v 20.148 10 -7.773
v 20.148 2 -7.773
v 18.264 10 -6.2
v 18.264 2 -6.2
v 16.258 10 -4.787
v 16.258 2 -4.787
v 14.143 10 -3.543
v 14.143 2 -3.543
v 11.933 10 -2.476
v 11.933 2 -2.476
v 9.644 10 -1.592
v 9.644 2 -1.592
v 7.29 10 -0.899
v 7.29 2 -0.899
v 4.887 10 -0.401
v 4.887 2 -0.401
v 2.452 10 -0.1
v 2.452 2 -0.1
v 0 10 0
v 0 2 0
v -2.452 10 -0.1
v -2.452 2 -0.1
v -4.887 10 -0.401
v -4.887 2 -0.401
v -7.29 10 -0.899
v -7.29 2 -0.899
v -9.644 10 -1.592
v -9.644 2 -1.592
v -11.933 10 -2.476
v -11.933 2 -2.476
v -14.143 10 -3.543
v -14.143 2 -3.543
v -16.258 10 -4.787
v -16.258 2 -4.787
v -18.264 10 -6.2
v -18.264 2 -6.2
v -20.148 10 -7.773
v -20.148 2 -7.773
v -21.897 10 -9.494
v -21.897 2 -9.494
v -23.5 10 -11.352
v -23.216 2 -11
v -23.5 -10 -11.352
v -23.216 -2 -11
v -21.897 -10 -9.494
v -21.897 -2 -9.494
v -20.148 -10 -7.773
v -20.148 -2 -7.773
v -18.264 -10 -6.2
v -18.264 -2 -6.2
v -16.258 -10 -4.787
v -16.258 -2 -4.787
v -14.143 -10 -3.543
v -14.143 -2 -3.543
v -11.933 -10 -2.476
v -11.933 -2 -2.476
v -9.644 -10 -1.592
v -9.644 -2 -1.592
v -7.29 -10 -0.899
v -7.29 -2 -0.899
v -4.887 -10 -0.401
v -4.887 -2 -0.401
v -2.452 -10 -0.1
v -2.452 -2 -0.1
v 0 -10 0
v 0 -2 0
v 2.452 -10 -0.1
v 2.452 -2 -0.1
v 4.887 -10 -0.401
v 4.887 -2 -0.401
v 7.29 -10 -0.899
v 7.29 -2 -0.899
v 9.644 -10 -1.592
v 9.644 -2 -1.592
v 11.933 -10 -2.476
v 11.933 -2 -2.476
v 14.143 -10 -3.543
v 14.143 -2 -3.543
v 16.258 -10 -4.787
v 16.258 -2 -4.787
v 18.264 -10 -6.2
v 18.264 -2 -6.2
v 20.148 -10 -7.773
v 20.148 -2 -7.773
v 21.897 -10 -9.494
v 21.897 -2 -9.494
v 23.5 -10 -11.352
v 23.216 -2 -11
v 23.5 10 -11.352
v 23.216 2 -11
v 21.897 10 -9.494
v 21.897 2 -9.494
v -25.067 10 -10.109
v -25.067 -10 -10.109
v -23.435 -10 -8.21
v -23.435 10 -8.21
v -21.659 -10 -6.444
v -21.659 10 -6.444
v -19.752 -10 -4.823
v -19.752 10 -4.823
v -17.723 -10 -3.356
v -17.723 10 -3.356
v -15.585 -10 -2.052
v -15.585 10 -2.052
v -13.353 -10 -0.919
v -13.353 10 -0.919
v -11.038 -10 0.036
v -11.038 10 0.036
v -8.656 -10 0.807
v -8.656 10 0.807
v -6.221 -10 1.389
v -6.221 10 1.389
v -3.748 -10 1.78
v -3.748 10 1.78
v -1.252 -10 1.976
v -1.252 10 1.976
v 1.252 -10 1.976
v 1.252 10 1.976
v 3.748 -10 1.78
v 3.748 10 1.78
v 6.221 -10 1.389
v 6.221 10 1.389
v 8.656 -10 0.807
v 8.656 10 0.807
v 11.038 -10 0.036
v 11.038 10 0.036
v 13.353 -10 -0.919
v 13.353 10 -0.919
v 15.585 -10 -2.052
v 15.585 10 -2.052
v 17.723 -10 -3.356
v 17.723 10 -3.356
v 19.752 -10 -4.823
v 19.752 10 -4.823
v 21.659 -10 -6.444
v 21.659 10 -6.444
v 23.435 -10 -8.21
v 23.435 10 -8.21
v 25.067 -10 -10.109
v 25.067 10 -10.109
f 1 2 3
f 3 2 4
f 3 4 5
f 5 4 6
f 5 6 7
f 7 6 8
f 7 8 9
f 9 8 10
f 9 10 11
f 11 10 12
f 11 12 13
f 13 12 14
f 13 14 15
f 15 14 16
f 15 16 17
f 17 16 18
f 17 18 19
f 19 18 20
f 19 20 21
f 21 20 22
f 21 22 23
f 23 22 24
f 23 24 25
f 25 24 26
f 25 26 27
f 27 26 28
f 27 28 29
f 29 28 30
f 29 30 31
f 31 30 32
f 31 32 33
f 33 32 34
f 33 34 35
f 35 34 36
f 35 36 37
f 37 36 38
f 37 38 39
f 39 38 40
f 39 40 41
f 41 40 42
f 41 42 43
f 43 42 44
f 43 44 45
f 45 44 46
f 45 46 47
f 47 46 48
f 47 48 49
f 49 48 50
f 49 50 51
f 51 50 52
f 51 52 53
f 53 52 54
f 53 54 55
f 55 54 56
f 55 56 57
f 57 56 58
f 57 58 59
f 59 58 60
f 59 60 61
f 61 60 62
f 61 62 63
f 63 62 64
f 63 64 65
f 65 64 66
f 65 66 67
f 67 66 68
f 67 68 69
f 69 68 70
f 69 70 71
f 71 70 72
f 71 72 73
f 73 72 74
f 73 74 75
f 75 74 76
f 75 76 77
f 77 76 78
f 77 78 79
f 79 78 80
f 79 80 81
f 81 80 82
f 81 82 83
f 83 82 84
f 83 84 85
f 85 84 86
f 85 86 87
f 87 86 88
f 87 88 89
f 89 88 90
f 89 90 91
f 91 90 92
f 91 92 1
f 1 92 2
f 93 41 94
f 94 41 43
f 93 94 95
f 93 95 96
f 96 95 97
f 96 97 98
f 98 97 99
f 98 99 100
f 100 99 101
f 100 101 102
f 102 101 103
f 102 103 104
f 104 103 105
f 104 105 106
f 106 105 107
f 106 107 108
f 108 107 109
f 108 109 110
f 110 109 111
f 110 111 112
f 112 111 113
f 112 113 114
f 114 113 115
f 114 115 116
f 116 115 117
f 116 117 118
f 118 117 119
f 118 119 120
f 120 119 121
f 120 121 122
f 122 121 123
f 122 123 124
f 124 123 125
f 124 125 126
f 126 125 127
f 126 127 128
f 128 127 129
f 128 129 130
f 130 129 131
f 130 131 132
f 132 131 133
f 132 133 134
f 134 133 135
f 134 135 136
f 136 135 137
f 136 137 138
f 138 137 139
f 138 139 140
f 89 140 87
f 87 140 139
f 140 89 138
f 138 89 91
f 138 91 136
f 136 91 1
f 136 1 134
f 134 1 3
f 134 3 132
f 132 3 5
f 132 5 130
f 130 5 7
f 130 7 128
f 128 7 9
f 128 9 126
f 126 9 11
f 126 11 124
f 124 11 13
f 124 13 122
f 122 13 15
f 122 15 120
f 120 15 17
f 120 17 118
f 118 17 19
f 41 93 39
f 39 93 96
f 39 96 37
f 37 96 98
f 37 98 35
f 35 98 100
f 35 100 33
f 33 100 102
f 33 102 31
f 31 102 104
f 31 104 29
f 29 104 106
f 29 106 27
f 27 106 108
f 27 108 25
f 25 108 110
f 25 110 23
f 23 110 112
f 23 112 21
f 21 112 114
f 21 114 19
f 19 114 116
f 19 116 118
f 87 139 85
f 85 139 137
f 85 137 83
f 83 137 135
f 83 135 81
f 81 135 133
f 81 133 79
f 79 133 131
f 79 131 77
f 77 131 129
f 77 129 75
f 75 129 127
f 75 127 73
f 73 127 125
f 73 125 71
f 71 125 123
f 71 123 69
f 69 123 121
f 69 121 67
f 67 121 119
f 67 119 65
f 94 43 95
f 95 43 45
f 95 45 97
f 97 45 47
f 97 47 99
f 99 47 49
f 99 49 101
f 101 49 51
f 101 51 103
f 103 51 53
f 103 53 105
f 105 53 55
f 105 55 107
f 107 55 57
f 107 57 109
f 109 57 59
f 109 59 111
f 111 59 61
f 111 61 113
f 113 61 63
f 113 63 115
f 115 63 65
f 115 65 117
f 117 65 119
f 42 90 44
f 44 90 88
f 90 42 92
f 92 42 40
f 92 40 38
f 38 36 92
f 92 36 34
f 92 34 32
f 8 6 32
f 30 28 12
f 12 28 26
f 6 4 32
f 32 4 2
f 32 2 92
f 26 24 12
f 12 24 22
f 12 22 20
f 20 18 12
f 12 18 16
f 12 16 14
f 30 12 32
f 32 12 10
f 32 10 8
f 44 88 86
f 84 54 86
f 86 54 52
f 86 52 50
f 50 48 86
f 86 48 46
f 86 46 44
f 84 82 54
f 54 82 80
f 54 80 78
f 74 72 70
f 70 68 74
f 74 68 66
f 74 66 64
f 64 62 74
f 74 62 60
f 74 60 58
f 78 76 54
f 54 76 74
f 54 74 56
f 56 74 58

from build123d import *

# Parameters (mm, degrees)
BOSS_EXTRUDE1_DEPTH = 10
BOSS_EXTRUDE2_DEPTH = 2


with BuildPart() as part:
    # Sketch1 → Boss-Extrude1 (new body, symmetric)
    with BuildSketch(Plane(origin=(0, 0, 0), x_dir=(1, 0, 0), z_dir=(0, 1, 0))):
        with BuildLine():
            Line((-25.066666667, 10.108740054), (-23.5, 11.351943801))
            ThreePointArc((-23.5, 11.351943801), (0, 0), (23.5, 11.351943801))
            Line((23.5, 11.351943801), (25.066666667, 10.108740054))
            ThreePointArc((25.066666667, 10.108740054), (0, -2), (-25.066666667, 10.108740054))
        make_face()
    extrude(amount=BOSS_EXTRUDE1_DEPTH, both=True)

    # Sketch2 → Boss-Extrude2 (add, symmetric)
    with BuildSketch(Plane(origin=(0, 0, 0), x_dir=(1, 0, 0), z_dir=(0, 1, 0))):
        with BuildLine():
            Line((-23.216373532, 11), (23.216373532, 11))
            ThreePointArc((23.216373532, 11), (0, 0), (-23.216373532, 11))
        make_face()
    extrude(amount=BOSS_EXTRUDE2_DEPTH, both=True)


solid = part.part
